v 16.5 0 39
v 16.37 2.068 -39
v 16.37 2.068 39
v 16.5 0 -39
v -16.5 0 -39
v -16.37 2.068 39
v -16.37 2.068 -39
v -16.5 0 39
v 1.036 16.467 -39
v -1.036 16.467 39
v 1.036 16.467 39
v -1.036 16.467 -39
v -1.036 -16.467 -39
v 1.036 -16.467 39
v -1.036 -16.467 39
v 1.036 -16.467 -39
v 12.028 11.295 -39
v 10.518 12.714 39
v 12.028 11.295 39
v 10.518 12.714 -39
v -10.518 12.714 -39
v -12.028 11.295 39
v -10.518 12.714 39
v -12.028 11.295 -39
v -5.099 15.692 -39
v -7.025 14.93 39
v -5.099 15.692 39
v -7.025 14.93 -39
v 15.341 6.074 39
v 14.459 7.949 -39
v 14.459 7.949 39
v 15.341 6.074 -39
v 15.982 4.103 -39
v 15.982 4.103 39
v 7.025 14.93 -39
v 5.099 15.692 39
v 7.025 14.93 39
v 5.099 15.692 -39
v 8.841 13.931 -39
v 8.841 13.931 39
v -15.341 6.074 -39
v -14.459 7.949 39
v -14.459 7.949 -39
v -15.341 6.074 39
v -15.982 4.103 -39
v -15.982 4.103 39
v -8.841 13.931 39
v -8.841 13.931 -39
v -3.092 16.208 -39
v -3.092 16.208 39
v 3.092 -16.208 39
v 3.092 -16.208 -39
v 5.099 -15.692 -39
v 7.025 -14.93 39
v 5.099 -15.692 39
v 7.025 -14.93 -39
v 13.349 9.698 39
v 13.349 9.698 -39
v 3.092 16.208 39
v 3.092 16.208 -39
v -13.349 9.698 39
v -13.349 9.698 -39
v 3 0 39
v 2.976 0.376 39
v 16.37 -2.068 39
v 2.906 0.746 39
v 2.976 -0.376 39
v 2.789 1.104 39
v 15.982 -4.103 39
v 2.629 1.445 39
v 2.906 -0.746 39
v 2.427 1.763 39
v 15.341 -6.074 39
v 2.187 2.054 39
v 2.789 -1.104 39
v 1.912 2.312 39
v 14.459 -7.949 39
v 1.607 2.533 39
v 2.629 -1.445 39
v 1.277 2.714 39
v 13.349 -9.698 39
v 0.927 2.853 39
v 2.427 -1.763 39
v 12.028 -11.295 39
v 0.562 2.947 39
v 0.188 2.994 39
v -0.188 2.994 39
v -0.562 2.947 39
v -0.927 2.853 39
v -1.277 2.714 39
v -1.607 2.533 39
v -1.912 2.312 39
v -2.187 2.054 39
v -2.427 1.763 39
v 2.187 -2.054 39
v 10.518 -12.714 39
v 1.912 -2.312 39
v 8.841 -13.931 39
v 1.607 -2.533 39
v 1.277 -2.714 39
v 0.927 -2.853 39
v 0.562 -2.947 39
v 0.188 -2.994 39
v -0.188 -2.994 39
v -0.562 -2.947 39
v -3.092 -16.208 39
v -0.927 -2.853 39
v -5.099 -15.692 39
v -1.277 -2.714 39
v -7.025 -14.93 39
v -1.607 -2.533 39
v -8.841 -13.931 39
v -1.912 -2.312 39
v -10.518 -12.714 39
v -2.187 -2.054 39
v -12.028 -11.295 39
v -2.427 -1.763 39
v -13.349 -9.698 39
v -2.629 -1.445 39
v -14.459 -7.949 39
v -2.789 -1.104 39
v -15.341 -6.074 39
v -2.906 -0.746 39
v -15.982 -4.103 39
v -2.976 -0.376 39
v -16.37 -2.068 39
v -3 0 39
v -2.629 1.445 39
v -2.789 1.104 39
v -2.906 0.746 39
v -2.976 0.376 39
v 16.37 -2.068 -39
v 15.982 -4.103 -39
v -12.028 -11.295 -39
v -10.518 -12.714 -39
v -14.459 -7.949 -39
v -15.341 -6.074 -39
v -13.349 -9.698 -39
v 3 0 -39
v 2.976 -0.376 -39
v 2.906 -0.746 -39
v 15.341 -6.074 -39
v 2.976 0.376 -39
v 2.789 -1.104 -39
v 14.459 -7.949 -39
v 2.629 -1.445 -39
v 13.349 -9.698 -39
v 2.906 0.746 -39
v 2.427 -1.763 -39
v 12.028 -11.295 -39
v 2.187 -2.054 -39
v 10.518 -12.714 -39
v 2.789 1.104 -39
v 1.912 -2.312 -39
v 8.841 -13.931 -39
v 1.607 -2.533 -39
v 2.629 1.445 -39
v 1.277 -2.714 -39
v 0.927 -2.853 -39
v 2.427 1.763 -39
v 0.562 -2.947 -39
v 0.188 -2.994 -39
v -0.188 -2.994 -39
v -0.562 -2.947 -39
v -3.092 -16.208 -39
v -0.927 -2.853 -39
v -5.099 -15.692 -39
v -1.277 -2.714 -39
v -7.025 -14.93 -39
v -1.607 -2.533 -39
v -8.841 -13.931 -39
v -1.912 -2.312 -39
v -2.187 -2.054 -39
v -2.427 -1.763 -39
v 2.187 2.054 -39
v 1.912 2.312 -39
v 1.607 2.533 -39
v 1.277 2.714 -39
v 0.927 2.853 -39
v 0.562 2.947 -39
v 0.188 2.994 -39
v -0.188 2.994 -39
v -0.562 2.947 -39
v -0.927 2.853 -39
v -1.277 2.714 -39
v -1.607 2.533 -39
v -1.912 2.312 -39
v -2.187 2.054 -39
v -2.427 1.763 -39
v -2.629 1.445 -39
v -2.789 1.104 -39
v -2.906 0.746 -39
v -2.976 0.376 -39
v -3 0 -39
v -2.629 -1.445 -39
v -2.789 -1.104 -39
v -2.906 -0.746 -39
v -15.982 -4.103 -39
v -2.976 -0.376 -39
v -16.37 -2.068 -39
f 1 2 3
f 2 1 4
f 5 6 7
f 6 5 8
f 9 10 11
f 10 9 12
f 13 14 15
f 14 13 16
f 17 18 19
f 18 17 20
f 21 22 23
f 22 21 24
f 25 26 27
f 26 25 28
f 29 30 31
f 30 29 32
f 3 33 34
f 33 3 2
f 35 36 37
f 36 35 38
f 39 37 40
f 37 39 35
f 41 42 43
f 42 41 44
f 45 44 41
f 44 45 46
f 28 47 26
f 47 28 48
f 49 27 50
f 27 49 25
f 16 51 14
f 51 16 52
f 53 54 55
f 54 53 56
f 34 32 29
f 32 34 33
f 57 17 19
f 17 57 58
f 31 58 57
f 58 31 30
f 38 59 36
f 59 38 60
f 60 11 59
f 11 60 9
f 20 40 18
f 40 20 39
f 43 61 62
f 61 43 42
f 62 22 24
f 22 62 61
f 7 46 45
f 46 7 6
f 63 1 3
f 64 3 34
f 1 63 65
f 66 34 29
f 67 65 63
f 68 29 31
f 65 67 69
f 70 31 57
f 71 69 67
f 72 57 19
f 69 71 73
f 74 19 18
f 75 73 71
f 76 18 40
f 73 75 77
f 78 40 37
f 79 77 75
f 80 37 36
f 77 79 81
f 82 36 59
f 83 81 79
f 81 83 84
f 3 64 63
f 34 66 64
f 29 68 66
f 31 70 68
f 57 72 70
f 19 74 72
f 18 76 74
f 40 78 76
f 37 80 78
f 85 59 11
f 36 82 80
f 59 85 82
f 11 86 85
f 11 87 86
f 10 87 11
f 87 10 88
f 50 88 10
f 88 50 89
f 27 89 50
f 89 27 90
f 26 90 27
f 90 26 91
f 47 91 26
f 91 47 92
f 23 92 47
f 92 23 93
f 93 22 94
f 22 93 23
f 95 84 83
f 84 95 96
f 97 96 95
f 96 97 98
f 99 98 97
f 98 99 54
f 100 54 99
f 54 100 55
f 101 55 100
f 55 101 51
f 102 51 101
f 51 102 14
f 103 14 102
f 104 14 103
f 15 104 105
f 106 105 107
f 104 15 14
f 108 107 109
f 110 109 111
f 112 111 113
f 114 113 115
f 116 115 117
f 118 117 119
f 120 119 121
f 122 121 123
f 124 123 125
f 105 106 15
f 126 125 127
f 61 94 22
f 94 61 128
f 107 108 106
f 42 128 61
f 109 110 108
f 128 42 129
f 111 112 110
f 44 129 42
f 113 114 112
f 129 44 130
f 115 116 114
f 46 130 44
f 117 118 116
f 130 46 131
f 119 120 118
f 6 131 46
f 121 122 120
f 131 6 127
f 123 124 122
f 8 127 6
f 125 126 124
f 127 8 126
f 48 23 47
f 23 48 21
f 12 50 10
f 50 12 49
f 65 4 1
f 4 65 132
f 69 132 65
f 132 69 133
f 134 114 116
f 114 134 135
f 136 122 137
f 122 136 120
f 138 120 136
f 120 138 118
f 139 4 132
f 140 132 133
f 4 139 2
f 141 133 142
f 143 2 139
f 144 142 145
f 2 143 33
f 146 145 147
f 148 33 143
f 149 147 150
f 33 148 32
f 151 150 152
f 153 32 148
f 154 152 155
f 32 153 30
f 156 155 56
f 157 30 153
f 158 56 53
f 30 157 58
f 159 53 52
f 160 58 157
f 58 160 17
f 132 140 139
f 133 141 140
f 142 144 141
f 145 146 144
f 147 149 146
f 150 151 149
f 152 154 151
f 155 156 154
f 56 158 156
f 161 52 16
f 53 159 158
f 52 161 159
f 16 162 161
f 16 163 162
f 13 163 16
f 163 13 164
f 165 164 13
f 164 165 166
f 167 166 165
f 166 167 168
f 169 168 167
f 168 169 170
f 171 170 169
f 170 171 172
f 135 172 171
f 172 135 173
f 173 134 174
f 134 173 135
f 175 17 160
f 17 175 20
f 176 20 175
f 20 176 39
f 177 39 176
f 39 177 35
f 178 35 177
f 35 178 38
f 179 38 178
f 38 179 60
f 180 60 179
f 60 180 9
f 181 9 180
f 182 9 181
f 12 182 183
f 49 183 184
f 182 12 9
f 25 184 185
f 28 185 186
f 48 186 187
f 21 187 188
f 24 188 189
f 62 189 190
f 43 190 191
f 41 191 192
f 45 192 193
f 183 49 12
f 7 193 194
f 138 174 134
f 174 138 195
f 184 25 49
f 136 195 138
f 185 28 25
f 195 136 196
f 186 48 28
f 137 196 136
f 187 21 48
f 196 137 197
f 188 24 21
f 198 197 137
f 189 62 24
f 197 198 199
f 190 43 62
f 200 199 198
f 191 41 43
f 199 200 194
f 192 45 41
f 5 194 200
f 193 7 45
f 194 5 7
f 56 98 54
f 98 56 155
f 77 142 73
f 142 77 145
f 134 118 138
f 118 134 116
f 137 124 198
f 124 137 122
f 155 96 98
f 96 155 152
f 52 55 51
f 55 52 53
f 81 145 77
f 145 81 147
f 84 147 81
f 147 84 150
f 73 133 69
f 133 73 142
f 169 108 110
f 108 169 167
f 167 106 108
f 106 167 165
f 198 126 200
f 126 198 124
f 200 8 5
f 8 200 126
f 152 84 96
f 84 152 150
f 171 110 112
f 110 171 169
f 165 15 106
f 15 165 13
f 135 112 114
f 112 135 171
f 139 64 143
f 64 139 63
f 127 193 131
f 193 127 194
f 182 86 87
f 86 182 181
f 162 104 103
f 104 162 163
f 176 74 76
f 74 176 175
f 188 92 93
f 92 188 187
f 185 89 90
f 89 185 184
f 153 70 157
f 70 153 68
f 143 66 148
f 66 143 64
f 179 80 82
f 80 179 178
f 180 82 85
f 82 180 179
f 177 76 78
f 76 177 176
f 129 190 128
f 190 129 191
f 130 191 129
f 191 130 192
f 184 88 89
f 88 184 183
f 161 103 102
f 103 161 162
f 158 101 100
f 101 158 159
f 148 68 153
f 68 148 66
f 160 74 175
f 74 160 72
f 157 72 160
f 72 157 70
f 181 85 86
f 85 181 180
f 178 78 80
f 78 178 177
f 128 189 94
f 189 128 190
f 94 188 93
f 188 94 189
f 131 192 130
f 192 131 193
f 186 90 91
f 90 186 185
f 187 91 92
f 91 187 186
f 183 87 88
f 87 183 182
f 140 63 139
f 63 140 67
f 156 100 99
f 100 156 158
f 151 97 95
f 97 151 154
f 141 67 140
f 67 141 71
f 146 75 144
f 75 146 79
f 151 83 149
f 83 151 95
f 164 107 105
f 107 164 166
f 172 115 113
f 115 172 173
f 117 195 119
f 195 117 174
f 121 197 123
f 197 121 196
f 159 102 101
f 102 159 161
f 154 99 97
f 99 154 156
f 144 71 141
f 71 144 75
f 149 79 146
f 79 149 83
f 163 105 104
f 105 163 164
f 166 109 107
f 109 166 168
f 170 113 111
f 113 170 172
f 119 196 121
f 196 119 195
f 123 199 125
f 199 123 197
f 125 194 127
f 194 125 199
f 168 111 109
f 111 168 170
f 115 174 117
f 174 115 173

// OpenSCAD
$fn = 50;


difference() {
	union() {
		translate(v = [0, 0, -39.0000000000]) {
			cylinder(h = 78, r = 16.5000000000);
		}
	}
	union() {
		translate(v = [0, 0, -100.0000000000]) {
			cylinder(h = 200, r = 3);
		}
	}
}
